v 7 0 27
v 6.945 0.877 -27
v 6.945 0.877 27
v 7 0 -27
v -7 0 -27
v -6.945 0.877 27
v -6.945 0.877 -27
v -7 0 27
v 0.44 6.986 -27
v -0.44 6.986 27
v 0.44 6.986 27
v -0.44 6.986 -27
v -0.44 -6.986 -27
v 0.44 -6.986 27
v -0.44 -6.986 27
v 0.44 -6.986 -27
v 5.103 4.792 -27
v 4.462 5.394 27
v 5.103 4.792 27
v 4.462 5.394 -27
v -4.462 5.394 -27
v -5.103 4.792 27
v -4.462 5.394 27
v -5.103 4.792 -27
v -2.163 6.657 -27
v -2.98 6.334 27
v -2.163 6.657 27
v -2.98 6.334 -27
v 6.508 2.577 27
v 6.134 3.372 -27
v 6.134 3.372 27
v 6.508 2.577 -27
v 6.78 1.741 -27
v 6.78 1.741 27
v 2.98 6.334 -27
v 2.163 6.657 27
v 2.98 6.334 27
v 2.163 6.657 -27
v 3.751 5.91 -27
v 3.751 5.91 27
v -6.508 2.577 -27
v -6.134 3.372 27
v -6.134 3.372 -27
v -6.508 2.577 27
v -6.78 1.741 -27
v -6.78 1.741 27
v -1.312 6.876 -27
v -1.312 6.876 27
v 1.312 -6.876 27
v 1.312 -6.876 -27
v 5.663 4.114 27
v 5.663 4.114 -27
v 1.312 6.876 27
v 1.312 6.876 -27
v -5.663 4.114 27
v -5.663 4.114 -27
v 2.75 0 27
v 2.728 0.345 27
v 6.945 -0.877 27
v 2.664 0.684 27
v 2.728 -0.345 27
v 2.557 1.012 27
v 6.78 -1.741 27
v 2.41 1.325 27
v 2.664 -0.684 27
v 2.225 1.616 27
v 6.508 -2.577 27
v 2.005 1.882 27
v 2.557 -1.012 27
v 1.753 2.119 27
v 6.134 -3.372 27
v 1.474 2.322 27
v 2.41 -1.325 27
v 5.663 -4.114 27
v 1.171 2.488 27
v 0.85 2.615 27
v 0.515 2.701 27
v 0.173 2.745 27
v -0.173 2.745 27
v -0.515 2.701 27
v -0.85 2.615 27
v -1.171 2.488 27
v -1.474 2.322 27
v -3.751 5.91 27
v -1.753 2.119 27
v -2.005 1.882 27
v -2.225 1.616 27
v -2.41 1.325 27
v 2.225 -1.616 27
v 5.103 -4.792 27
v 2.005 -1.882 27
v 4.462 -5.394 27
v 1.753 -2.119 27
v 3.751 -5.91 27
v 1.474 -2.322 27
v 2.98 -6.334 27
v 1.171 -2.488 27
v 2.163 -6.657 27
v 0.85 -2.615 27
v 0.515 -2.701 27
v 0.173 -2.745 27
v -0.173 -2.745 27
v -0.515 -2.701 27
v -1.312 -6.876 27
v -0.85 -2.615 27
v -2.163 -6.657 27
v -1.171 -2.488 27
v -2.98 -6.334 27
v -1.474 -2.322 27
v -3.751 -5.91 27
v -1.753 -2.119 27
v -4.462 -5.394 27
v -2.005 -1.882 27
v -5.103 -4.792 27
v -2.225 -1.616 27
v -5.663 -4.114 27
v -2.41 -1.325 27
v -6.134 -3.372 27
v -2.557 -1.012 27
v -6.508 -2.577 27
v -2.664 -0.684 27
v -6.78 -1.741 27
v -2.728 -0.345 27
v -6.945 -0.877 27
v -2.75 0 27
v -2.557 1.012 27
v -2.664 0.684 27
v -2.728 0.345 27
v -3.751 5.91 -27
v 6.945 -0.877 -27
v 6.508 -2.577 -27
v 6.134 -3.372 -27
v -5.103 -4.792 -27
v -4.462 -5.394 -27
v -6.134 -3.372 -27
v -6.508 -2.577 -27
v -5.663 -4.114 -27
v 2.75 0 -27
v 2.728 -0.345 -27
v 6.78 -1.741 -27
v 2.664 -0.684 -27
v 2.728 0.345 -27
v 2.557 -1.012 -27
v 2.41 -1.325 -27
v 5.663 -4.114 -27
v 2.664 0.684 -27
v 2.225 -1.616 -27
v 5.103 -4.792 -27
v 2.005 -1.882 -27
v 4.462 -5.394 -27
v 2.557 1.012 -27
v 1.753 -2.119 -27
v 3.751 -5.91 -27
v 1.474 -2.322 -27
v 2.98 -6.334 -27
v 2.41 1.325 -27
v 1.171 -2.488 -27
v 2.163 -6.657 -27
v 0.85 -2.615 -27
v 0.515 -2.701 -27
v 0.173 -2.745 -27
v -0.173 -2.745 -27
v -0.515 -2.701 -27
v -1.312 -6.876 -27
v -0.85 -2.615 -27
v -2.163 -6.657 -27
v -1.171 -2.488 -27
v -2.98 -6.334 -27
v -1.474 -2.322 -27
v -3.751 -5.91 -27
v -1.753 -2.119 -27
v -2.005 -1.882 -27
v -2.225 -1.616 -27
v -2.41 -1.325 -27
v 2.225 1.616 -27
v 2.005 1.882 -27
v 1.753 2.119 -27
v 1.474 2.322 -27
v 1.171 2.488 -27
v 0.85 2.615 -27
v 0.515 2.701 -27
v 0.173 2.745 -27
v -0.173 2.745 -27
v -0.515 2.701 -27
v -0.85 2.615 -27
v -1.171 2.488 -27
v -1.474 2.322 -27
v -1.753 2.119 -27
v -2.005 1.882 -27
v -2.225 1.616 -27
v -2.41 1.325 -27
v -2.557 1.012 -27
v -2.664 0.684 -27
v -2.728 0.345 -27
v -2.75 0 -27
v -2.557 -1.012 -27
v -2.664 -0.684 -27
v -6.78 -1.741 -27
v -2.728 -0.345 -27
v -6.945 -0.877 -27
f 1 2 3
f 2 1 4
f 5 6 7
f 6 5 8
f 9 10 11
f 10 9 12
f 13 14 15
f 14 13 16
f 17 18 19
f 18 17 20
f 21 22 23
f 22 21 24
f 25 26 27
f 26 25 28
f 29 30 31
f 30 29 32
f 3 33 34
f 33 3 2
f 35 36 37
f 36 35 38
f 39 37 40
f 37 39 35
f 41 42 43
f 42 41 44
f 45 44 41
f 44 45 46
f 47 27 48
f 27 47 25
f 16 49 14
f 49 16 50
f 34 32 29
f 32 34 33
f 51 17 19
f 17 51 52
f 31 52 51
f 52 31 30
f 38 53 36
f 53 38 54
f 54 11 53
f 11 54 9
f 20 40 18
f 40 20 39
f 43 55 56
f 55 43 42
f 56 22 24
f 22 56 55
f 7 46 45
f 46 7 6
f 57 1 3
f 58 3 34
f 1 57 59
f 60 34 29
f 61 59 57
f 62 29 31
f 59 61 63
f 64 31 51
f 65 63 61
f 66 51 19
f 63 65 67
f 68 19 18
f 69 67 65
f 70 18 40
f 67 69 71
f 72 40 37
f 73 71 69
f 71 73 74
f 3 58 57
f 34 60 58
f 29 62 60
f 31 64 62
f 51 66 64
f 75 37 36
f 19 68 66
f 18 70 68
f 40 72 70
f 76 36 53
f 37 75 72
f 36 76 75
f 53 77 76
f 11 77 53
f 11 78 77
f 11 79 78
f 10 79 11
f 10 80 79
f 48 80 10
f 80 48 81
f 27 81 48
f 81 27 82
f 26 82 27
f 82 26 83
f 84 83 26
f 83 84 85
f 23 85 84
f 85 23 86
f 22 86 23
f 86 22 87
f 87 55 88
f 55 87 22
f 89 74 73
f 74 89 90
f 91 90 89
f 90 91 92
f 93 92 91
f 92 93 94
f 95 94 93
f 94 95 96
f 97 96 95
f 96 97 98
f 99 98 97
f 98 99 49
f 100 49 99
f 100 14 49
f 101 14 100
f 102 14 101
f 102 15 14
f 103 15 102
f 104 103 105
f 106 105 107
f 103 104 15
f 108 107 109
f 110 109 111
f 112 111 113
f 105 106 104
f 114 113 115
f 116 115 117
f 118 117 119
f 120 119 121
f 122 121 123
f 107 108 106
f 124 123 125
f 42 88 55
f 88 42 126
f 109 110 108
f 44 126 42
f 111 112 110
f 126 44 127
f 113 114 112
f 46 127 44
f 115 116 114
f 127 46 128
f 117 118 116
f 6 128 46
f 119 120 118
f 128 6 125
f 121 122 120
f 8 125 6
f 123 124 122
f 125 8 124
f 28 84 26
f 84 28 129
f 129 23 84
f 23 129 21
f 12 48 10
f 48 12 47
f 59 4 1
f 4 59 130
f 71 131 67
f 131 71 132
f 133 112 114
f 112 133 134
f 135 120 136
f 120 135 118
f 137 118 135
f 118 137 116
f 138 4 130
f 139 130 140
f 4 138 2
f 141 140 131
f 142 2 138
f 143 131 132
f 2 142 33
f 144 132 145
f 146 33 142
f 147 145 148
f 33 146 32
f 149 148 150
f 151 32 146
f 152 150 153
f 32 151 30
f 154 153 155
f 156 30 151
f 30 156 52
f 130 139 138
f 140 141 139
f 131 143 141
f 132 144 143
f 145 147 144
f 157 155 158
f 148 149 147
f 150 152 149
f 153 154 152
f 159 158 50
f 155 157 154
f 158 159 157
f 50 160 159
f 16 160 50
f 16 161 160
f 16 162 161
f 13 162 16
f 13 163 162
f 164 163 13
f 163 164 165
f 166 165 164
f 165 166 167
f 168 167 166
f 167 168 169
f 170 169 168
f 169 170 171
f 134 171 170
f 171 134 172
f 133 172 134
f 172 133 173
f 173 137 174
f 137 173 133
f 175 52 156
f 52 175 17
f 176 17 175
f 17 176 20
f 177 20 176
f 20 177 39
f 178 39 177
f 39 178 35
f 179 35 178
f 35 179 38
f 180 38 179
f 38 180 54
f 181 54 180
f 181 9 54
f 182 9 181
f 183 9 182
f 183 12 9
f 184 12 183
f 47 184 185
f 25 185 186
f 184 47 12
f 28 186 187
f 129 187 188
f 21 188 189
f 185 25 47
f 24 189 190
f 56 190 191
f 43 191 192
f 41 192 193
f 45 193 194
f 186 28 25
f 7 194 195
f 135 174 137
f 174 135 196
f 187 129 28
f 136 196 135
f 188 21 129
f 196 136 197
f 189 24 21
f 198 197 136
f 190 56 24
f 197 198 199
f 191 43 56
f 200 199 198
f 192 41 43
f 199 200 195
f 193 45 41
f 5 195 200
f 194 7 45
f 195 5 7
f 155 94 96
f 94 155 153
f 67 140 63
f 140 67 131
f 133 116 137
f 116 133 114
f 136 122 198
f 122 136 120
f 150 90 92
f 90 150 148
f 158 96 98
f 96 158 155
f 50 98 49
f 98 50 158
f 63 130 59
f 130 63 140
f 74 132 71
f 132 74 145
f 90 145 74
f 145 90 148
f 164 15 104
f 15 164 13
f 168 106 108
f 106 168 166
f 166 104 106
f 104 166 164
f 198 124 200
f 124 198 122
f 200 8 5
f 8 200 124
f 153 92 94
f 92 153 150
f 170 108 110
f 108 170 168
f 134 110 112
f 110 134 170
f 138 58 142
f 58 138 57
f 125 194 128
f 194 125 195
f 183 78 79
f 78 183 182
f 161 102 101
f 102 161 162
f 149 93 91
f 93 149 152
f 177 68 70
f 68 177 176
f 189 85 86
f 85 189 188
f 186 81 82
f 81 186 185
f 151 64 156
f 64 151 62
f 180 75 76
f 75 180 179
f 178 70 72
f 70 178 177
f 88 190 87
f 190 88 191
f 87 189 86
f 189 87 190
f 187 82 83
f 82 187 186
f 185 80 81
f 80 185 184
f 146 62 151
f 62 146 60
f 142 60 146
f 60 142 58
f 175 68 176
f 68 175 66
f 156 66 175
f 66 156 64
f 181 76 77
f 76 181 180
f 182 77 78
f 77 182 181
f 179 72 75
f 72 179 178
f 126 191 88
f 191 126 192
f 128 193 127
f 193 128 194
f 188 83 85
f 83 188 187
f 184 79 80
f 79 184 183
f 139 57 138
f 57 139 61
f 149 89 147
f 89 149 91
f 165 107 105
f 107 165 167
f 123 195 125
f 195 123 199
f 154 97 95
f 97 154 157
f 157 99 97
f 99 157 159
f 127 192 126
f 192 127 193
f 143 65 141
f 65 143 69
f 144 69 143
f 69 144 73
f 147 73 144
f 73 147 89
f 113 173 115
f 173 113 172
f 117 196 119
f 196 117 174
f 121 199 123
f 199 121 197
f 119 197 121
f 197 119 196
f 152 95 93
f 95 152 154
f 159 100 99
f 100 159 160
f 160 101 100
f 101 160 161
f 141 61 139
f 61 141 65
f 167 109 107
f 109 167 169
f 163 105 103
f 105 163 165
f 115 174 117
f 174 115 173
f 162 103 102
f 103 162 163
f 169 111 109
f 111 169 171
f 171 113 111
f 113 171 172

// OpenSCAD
$fn = 50;


difference() {
	union() {
		translate(v = [0, 0, -27.0000000000]) {
			cylinder(h = 54, r = 7.0000000000);
		}
	}
	union() {
		translate(v = [0, 0, -100.0000000000]) {
			cylinder(h = 200, r = 2.7500000000);
		}
	}
}
